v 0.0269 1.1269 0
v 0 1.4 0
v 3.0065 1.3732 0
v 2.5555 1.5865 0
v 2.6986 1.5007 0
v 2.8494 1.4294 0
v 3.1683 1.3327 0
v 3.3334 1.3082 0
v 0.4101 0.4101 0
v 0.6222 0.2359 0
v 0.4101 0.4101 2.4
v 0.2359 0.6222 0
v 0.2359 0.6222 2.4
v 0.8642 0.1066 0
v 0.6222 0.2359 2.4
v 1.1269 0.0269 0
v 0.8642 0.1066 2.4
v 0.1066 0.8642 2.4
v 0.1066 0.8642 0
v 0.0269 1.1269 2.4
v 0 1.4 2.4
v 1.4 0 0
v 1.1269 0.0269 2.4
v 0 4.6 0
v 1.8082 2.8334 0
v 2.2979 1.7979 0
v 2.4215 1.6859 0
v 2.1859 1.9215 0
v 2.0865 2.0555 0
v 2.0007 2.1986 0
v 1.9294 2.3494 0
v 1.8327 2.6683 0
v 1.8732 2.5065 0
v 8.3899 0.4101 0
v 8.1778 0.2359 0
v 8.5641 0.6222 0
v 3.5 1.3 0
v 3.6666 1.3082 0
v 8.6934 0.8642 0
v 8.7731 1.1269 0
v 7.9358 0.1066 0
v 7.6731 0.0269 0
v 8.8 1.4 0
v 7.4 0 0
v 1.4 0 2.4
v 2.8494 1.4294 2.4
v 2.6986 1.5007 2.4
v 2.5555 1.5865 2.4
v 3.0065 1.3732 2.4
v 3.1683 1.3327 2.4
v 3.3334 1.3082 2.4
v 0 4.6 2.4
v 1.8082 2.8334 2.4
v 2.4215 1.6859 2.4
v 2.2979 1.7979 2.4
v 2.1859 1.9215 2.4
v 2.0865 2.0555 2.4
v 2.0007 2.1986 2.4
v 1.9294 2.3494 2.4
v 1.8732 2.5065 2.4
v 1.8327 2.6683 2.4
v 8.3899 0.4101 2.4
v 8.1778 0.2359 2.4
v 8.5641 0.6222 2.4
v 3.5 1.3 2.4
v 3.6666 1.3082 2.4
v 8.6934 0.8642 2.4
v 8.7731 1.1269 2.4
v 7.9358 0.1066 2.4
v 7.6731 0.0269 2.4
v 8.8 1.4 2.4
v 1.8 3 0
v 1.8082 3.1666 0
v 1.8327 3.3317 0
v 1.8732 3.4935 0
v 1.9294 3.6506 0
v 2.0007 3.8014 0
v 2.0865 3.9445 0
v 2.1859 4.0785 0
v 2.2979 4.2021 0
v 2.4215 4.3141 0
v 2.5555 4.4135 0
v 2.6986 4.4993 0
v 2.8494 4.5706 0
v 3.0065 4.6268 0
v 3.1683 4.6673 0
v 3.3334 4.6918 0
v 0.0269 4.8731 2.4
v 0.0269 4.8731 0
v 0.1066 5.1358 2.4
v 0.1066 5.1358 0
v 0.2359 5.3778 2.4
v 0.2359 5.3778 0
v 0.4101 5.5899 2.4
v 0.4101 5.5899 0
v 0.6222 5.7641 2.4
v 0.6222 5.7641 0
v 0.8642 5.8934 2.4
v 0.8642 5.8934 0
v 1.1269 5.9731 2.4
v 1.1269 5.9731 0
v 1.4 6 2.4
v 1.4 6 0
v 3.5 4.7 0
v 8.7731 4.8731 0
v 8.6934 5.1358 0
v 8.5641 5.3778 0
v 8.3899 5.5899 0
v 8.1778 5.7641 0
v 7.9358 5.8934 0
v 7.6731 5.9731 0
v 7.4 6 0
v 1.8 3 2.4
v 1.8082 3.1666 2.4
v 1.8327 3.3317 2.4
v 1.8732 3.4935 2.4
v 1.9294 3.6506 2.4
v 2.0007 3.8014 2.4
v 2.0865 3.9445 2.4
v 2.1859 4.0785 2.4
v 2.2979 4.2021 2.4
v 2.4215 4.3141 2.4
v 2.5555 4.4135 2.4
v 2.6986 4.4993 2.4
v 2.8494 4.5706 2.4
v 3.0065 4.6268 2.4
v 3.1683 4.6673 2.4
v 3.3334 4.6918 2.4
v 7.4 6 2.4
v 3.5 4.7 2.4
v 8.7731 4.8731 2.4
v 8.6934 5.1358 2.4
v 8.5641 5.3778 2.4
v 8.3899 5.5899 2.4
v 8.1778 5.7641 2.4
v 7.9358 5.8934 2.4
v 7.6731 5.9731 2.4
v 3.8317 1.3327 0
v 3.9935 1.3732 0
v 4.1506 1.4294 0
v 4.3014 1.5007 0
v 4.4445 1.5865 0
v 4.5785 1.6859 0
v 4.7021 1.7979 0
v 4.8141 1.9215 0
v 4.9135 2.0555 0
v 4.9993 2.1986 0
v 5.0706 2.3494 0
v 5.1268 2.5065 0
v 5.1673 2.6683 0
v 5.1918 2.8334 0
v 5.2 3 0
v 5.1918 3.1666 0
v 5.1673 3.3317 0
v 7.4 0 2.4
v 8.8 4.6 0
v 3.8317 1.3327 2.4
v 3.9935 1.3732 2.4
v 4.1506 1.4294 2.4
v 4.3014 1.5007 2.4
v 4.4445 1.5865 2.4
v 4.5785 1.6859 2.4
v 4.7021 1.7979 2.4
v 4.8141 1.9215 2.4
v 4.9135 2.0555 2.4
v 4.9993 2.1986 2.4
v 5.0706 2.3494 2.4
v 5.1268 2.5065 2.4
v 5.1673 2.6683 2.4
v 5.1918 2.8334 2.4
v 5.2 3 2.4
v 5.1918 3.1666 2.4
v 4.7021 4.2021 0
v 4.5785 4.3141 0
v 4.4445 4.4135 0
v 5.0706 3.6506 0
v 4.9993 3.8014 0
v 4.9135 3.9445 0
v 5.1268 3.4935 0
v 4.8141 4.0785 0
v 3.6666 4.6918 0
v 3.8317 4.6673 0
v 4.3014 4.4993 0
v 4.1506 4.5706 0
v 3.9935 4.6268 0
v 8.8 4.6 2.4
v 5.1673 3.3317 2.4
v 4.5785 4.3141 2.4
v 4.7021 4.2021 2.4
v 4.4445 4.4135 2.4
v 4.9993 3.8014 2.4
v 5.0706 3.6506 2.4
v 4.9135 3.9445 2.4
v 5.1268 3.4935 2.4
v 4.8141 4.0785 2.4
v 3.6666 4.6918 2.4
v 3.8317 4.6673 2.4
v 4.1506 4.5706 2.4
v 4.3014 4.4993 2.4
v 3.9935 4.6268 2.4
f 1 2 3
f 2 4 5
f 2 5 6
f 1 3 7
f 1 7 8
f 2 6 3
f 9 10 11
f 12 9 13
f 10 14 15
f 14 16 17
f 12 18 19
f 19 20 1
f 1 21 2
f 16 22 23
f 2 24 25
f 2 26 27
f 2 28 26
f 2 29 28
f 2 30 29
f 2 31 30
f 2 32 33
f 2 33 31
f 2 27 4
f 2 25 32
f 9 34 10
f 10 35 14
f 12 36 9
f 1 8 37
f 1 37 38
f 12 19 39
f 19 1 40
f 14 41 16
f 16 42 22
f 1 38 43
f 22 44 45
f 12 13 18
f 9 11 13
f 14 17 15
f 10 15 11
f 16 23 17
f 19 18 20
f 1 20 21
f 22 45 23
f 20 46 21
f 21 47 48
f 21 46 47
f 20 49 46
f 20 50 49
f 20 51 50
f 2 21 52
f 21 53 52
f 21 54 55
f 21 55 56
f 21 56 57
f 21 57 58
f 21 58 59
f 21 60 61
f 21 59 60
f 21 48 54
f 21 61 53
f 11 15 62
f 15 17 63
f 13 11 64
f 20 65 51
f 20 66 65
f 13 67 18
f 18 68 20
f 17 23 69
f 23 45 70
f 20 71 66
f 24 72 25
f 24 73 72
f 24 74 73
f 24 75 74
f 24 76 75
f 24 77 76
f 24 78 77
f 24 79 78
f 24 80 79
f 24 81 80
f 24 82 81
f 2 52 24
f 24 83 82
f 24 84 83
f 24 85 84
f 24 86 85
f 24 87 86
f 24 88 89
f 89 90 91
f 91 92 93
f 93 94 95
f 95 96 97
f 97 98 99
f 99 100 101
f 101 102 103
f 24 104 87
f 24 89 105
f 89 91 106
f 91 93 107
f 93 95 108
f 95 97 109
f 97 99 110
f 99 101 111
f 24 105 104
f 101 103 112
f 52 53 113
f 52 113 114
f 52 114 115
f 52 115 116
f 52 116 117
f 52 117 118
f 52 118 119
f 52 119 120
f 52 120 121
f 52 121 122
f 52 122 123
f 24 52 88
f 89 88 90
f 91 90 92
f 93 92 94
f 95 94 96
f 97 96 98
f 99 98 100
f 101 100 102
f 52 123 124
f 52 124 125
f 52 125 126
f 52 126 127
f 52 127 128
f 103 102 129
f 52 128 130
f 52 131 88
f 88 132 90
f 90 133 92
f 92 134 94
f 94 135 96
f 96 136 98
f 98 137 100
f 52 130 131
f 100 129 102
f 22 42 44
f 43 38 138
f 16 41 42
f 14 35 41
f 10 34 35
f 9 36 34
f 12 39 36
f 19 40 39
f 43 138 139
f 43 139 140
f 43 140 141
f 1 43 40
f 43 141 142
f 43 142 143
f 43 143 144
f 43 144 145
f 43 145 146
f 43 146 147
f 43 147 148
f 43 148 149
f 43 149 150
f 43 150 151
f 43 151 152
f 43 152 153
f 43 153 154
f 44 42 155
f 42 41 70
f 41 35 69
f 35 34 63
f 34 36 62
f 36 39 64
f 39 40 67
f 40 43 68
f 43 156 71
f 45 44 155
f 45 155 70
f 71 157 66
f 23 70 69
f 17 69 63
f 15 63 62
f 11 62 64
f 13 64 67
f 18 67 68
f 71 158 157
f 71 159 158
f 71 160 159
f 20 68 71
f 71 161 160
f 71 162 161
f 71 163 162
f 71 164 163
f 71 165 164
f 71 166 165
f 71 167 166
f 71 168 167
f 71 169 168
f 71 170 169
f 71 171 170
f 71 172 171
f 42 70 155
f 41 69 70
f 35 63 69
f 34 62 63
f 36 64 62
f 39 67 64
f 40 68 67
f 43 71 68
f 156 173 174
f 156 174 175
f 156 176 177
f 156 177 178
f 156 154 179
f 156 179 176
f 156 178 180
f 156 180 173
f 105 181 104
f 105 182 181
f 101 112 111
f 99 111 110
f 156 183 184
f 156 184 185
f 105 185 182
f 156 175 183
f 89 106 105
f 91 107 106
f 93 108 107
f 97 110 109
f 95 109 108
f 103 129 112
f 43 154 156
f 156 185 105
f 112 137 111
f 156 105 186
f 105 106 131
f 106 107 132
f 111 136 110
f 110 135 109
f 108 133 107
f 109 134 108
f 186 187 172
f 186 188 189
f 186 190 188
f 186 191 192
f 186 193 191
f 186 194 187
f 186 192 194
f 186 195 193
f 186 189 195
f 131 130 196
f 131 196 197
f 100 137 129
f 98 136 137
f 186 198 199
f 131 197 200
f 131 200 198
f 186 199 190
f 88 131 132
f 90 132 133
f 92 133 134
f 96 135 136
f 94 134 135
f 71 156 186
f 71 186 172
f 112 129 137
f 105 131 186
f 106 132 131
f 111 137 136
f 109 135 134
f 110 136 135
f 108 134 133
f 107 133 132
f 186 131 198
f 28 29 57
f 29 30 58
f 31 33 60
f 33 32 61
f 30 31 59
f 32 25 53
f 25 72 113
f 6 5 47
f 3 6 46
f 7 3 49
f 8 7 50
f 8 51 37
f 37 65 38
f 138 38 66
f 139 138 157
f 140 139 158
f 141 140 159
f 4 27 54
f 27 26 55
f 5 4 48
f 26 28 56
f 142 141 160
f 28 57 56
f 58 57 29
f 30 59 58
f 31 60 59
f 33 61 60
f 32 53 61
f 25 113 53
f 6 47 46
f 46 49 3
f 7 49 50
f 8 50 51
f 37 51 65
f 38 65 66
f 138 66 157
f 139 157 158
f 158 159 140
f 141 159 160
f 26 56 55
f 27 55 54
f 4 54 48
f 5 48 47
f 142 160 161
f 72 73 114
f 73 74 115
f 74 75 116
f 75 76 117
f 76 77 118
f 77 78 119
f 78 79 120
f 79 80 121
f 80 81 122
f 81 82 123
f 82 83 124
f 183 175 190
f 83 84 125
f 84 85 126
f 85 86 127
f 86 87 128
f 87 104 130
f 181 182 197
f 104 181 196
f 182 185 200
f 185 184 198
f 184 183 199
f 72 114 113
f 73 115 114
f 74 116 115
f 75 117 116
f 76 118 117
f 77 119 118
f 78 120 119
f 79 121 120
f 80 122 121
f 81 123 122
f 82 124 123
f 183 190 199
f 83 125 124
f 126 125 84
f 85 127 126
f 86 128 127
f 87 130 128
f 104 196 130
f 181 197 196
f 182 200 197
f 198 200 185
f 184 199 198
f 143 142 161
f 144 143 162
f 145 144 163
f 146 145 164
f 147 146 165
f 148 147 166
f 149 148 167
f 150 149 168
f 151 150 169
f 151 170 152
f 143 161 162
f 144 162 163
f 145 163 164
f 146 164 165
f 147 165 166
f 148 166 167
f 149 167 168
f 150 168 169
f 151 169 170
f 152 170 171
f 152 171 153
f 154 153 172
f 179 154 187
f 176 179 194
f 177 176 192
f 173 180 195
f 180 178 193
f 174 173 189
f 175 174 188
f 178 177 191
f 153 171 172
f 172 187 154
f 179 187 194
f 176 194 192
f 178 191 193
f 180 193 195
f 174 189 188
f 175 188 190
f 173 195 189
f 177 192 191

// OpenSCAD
// Generated by build_mount.py; source parameters are ../parameters.json.
// Dimensions in mm. Original printed geometry only.
translate([3.5, 3, 0]){
difference(){
translate([0, 0, 0]){
linear_extrude(height=2.4) polygon(points=[[3.9, -3.0], [-2.1, -3.0], [-2.373126, -2.973099], [-2.635757, -2.893431], [-2.877798, -2.764057], [-3.089949, -2.589949], [-3.264057, -2.377798], [-3.393431, -2.135757], [-3.473099, -1.873126], [-3.5, -1.6], [-3.5, 1.6], [-3.473099, 1.873126], [-3.393431, 2.135757], [-3.264057, 2.377798], [-3.089949, 2.589949], [-2.877798, 2.764057], [-2.635757, 2.893431], [-2.373126, 2.973099], [-2.1, 3.0], [3.9, 3.0], [4.173126, 2.973099], [4.435757, 2.893431], [4.677798, 2.764057], [4.889949, 2.589949], [5.064057, 2.377798], [5.193431, 2.135757], [5.273099, 1.873126], [5.3, 1.6], [5.3, -1.6], [5.273099, -1.873126], [5.193431, -2.135757], [5.064057, -2.377798], [4.889949, -2.589949], [4.677798, -2.764057], [4.435757, -2.893431], [4.173126, -2.973099]],paths=[[0, 1, 2, 3, 4, 5, 6, 7, 8, 9, 10, 11, 12, 13, 14, 15, 16, 17, 18, 19, 20, 21, 22, 23, 24, 25, 26, 27, 28, 29, 30, 31, 32, 33, 34, 35]]);
}
translate([0, 0, -0.02]){
cylinder(h=2.44,d1=3.4,d2=3.4,$fn=64);
}
}
}
